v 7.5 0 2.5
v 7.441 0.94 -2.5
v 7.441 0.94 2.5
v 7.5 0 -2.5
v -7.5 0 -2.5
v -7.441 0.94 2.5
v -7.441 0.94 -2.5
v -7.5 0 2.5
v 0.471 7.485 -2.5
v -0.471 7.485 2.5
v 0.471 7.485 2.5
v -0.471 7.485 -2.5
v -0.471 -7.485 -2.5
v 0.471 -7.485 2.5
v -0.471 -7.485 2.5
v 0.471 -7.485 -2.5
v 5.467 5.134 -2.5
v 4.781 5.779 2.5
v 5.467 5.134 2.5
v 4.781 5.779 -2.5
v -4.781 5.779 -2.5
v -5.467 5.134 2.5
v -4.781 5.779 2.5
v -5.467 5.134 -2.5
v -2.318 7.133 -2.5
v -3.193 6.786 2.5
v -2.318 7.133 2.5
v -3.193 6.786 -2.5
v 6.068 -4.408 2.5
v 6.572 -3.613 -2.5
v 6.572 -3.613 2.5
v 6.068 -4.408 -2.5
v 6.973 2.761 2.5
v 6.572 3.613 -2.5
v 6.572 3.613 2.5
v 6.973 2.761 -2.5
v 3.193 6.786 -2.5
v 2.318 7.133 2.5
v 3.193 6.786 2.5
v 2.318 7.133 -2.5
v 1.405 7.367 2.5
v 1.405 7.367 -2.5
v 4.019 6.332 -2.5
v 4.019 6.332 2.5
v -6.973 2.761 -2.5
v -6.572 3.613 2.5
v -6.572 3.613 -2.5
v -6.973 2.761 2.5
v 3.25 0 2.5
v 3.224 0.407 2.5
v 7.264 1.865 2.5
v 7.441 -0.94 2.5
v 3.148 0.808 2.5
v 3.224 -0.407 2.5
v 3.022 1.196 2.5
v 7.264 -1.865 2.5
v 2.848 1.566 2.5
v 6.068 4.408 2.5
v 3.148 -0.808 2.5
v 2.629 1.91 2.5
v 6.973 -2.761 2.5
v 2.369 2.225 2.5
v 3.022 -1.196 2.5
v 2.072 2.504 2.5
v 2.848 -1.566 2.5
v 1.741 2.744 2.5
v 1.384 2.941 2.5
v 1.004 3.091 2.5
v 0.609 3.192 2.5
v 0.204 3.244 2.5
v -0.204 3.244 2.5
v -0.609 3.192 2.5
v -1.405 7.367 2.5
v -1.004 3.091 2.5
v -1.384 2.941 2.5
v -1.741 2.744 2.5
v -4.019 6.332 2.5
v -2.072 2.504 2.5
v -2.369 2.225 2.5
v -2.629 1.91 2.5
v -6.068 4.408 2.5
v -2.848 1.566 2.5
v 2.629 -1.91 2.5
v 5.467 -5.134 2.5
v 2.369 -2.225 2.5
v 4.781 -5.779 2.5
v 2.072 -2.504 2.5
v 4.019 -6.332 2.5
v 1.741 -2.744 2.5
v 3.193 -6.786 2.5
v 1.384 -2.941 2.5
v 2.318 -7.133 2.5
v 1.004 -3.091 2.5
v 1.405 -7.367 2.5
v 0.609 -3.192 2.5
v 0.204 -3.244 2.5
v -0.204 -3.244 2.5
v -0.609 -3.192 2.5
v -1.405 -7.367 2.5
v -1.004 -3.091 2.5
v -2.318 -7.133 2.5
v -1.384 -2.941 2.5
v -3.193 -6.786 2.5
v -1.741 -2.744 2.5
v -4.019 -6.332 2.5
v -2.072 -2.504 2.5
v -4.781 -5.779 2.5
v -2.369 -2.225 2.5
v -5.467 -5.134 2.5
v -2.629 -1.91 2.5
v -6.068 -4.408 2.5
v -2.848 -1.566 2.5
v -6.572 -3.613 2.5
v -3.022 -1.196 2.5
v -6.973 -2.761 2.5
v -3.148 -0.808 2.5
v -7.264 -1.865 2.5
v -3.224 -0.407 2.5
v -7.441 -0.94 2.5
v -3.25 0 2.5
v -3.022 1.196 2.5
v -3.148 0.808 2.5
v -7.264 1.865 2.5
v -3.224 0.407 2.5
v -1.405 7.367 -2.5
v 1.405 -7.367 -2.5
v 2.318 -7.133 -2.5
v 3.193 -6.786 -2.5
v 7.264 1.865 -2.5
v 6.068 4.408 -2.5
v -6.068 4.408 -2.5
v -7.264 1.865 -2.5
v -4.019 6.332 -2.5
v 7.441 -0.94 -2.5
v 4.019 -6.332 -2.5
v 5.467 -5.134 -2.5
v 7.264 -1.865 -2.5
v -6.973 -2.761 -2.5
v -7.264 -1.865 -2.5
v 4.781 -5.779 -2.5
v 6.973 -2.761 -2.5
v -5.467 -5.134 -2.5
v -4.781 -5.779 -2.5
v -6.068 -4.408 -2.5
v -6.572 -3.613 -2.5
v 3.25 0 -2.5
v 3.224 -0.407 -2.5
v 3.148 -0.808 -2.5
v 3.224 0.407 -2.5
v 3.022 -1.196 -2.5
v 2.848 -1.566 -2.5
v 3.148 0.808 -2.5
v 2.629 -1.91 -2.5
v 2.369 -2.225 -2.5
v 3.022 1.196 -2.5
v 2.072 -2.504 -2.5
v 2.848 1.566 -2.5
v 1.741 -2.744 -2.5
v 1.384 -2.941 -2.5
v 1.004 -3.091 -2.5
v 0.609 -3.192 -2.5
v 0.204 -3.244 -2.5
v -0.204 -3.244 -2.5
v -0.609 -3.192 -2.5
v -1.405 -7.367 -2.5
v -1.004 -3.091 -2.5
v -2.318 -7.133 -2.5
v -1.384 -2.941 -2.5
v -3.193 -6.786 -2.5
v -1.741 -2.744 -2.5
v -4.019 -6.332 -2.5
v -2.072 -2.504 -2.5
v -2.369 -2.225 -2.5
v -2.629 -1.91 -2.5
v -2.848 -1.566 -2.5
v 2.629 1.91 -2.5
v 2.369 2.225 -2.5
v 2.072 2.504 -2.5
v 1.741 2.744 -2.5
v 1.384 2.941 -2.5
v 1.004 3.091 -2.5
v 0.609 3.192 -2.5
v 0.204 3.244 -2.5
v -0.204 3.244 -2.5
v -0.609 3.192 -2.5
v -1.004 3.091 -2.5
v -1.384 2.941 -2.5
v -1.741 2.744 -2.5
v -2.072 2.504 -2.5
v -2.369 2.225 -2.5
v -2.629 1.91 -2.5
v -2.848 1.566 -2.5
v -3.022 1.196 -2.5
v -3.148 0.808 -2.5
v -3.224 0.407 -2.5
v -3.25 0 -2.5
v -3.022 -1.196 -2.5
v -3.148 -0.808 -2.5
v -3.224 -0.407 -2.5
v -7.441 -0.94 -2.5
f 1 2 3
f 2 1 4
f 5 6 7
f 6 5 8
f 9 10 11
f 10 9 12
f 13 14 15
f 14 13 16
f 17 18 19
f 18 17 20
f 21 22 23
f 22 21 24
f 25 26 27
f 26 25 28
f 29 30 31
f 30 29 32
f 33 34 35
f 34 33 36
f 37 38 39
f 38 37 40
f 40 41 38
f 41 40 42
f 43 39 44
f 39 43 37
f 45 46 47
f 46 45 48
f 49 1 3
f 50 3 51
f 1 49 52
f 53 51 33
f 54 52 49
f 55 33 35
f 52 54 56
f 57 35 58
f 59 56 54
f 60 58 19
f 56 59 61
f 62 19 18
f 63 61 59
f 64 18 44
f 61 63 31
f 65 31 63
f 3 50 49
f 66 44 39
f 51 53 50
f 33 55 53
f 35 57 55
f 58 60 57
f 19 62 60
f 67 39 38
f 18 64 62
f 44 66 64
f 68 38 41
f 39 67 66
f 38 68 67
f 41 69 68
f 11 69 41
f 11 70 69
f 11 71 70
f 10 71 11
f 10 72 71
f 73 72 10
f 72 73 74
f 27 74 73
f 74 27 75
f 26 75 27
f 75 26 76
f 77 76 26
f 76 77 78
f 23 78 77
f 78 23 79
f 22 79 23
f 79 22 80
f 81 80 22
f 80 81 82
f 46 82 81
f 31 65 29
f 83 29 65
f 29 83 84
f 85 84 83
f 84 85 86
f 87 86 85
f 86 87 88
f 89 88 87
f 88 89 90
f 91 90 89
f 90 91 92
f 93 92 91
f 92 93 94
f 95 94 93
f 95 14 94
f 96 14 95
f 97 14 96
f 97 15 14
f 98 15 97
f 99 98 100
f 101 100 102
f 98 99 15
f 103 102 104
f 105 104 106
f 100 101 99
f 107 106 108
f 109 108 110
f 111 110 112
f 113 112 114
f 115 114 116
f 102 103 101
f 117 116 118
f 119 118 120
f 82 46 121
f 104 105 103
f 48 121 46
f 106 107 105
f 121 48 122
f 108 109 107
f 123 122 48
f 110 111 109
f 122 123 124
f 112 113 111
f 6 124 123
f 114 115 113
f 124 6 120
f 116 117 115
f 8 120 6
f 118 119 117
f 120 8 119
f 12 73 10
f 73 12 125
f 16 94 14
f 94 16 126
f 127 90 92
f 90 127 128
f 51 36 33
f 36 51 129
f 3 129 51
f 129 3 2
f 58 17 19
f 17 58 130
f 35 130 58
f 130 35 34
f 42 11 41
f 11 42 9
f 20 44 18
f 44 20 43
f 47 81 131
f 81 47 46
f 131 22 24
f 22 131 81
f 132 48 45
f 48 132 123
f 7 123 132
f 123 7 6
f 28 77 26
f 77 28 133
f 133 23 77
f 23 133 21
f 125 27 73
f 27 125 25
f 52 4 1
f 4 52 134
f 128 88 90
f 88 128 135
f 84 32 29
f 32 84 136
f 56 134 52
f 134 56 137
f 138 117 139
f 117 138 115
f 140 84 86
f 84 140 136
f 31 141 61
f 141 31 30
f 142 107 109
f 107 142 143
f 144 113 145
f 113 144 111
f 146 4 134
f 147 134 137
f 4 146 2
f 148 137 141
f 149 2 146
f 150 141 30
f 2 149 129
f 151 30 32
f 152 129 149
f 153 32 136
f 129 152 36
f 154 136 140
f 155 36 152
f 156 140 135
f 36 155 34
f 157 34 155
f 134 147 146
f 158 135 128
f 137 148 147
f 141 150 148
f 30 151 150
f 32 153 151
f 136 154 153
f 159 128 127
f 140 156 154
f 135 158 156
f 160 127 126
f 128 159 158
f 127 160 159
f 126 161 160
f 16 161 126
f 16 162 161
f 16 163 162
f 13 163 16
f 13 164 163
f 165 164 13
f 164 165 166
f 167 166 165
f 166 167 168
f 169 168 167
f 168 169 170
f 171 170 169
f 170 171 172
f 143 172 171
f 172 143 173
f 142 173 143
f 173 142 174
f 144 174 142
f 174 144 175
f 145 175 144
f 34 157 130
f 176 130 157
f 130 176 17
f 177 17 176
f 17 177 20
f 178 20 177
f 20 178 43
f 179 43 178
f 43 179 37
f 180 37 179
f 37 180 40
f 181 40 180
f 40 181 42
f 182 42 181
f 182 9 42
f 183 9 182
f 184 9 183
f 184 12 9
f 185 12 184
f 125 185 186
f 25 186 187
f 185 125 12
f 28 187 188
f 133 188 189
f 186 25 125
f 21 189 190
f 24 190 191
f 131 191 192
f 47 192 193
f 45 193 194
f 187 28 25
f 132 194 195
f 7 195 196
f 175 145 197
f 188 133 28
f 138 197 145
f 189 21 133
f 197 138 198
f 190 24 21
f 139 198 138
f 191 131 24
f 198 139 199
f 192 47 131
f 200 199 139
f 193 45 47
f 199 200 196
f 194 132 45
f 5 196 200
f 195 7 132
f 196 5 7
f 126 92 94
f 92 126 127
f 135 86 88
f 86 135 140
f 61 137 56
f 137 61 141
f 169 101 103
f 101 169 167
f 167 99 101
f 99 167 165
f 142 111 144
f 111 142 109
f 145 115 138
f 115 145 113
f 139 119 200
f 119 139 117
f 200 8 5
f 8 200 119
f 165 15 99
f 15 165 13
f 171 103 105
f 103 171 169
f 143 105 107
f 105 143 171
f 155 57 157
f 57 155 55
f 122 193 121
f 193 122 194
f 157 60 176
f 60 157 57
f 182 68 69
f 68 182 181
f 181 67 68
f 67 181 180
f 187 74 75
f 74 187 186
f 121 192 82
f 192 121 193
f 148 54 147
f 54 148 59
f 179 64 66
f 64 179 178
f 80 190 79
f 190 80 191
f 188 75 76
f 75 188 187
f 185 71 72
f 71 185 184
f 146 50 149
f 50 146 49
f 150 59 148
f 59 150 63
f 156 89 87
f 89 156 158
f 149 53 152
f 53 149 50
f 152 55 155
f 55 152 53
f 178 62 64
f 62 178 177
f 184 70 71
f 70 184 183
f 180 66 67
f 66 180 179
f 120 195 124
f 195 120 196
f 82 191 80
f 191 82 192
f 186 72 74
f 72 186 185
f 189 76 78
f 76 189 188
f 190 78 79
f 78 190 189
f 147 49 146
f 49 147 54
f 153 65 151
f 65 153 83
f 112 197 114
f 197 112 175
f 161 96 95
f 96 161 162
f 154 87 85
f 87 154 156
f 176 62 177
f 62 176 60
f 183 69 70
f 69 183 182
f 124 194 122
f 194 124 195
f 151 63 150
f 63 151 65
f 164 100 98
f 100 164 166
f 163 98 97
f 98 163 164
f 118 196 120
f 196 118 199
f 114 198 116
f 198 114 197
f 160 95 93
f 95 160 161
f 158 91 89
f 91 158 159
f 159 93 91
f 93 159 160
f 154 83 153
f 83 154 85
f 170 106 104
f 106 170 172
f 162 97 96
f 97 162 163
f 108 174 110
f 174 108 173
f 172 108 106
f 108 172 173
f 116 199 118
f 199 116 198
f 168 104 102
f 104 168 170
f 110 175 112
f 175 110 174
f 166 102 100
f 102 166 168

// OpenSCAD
$fn = 50;


difference() {
	union() {
		translate(v = [0, 0, -2.5000000000]) {
			cylinder(h = 5, r = 7.5000000000);
		}
	}
	union() {
		translate(v = [0, 0, -100.0000000000]) {
			cylinder(h = 200, r = 3.2500000000);
		}
	}
}
